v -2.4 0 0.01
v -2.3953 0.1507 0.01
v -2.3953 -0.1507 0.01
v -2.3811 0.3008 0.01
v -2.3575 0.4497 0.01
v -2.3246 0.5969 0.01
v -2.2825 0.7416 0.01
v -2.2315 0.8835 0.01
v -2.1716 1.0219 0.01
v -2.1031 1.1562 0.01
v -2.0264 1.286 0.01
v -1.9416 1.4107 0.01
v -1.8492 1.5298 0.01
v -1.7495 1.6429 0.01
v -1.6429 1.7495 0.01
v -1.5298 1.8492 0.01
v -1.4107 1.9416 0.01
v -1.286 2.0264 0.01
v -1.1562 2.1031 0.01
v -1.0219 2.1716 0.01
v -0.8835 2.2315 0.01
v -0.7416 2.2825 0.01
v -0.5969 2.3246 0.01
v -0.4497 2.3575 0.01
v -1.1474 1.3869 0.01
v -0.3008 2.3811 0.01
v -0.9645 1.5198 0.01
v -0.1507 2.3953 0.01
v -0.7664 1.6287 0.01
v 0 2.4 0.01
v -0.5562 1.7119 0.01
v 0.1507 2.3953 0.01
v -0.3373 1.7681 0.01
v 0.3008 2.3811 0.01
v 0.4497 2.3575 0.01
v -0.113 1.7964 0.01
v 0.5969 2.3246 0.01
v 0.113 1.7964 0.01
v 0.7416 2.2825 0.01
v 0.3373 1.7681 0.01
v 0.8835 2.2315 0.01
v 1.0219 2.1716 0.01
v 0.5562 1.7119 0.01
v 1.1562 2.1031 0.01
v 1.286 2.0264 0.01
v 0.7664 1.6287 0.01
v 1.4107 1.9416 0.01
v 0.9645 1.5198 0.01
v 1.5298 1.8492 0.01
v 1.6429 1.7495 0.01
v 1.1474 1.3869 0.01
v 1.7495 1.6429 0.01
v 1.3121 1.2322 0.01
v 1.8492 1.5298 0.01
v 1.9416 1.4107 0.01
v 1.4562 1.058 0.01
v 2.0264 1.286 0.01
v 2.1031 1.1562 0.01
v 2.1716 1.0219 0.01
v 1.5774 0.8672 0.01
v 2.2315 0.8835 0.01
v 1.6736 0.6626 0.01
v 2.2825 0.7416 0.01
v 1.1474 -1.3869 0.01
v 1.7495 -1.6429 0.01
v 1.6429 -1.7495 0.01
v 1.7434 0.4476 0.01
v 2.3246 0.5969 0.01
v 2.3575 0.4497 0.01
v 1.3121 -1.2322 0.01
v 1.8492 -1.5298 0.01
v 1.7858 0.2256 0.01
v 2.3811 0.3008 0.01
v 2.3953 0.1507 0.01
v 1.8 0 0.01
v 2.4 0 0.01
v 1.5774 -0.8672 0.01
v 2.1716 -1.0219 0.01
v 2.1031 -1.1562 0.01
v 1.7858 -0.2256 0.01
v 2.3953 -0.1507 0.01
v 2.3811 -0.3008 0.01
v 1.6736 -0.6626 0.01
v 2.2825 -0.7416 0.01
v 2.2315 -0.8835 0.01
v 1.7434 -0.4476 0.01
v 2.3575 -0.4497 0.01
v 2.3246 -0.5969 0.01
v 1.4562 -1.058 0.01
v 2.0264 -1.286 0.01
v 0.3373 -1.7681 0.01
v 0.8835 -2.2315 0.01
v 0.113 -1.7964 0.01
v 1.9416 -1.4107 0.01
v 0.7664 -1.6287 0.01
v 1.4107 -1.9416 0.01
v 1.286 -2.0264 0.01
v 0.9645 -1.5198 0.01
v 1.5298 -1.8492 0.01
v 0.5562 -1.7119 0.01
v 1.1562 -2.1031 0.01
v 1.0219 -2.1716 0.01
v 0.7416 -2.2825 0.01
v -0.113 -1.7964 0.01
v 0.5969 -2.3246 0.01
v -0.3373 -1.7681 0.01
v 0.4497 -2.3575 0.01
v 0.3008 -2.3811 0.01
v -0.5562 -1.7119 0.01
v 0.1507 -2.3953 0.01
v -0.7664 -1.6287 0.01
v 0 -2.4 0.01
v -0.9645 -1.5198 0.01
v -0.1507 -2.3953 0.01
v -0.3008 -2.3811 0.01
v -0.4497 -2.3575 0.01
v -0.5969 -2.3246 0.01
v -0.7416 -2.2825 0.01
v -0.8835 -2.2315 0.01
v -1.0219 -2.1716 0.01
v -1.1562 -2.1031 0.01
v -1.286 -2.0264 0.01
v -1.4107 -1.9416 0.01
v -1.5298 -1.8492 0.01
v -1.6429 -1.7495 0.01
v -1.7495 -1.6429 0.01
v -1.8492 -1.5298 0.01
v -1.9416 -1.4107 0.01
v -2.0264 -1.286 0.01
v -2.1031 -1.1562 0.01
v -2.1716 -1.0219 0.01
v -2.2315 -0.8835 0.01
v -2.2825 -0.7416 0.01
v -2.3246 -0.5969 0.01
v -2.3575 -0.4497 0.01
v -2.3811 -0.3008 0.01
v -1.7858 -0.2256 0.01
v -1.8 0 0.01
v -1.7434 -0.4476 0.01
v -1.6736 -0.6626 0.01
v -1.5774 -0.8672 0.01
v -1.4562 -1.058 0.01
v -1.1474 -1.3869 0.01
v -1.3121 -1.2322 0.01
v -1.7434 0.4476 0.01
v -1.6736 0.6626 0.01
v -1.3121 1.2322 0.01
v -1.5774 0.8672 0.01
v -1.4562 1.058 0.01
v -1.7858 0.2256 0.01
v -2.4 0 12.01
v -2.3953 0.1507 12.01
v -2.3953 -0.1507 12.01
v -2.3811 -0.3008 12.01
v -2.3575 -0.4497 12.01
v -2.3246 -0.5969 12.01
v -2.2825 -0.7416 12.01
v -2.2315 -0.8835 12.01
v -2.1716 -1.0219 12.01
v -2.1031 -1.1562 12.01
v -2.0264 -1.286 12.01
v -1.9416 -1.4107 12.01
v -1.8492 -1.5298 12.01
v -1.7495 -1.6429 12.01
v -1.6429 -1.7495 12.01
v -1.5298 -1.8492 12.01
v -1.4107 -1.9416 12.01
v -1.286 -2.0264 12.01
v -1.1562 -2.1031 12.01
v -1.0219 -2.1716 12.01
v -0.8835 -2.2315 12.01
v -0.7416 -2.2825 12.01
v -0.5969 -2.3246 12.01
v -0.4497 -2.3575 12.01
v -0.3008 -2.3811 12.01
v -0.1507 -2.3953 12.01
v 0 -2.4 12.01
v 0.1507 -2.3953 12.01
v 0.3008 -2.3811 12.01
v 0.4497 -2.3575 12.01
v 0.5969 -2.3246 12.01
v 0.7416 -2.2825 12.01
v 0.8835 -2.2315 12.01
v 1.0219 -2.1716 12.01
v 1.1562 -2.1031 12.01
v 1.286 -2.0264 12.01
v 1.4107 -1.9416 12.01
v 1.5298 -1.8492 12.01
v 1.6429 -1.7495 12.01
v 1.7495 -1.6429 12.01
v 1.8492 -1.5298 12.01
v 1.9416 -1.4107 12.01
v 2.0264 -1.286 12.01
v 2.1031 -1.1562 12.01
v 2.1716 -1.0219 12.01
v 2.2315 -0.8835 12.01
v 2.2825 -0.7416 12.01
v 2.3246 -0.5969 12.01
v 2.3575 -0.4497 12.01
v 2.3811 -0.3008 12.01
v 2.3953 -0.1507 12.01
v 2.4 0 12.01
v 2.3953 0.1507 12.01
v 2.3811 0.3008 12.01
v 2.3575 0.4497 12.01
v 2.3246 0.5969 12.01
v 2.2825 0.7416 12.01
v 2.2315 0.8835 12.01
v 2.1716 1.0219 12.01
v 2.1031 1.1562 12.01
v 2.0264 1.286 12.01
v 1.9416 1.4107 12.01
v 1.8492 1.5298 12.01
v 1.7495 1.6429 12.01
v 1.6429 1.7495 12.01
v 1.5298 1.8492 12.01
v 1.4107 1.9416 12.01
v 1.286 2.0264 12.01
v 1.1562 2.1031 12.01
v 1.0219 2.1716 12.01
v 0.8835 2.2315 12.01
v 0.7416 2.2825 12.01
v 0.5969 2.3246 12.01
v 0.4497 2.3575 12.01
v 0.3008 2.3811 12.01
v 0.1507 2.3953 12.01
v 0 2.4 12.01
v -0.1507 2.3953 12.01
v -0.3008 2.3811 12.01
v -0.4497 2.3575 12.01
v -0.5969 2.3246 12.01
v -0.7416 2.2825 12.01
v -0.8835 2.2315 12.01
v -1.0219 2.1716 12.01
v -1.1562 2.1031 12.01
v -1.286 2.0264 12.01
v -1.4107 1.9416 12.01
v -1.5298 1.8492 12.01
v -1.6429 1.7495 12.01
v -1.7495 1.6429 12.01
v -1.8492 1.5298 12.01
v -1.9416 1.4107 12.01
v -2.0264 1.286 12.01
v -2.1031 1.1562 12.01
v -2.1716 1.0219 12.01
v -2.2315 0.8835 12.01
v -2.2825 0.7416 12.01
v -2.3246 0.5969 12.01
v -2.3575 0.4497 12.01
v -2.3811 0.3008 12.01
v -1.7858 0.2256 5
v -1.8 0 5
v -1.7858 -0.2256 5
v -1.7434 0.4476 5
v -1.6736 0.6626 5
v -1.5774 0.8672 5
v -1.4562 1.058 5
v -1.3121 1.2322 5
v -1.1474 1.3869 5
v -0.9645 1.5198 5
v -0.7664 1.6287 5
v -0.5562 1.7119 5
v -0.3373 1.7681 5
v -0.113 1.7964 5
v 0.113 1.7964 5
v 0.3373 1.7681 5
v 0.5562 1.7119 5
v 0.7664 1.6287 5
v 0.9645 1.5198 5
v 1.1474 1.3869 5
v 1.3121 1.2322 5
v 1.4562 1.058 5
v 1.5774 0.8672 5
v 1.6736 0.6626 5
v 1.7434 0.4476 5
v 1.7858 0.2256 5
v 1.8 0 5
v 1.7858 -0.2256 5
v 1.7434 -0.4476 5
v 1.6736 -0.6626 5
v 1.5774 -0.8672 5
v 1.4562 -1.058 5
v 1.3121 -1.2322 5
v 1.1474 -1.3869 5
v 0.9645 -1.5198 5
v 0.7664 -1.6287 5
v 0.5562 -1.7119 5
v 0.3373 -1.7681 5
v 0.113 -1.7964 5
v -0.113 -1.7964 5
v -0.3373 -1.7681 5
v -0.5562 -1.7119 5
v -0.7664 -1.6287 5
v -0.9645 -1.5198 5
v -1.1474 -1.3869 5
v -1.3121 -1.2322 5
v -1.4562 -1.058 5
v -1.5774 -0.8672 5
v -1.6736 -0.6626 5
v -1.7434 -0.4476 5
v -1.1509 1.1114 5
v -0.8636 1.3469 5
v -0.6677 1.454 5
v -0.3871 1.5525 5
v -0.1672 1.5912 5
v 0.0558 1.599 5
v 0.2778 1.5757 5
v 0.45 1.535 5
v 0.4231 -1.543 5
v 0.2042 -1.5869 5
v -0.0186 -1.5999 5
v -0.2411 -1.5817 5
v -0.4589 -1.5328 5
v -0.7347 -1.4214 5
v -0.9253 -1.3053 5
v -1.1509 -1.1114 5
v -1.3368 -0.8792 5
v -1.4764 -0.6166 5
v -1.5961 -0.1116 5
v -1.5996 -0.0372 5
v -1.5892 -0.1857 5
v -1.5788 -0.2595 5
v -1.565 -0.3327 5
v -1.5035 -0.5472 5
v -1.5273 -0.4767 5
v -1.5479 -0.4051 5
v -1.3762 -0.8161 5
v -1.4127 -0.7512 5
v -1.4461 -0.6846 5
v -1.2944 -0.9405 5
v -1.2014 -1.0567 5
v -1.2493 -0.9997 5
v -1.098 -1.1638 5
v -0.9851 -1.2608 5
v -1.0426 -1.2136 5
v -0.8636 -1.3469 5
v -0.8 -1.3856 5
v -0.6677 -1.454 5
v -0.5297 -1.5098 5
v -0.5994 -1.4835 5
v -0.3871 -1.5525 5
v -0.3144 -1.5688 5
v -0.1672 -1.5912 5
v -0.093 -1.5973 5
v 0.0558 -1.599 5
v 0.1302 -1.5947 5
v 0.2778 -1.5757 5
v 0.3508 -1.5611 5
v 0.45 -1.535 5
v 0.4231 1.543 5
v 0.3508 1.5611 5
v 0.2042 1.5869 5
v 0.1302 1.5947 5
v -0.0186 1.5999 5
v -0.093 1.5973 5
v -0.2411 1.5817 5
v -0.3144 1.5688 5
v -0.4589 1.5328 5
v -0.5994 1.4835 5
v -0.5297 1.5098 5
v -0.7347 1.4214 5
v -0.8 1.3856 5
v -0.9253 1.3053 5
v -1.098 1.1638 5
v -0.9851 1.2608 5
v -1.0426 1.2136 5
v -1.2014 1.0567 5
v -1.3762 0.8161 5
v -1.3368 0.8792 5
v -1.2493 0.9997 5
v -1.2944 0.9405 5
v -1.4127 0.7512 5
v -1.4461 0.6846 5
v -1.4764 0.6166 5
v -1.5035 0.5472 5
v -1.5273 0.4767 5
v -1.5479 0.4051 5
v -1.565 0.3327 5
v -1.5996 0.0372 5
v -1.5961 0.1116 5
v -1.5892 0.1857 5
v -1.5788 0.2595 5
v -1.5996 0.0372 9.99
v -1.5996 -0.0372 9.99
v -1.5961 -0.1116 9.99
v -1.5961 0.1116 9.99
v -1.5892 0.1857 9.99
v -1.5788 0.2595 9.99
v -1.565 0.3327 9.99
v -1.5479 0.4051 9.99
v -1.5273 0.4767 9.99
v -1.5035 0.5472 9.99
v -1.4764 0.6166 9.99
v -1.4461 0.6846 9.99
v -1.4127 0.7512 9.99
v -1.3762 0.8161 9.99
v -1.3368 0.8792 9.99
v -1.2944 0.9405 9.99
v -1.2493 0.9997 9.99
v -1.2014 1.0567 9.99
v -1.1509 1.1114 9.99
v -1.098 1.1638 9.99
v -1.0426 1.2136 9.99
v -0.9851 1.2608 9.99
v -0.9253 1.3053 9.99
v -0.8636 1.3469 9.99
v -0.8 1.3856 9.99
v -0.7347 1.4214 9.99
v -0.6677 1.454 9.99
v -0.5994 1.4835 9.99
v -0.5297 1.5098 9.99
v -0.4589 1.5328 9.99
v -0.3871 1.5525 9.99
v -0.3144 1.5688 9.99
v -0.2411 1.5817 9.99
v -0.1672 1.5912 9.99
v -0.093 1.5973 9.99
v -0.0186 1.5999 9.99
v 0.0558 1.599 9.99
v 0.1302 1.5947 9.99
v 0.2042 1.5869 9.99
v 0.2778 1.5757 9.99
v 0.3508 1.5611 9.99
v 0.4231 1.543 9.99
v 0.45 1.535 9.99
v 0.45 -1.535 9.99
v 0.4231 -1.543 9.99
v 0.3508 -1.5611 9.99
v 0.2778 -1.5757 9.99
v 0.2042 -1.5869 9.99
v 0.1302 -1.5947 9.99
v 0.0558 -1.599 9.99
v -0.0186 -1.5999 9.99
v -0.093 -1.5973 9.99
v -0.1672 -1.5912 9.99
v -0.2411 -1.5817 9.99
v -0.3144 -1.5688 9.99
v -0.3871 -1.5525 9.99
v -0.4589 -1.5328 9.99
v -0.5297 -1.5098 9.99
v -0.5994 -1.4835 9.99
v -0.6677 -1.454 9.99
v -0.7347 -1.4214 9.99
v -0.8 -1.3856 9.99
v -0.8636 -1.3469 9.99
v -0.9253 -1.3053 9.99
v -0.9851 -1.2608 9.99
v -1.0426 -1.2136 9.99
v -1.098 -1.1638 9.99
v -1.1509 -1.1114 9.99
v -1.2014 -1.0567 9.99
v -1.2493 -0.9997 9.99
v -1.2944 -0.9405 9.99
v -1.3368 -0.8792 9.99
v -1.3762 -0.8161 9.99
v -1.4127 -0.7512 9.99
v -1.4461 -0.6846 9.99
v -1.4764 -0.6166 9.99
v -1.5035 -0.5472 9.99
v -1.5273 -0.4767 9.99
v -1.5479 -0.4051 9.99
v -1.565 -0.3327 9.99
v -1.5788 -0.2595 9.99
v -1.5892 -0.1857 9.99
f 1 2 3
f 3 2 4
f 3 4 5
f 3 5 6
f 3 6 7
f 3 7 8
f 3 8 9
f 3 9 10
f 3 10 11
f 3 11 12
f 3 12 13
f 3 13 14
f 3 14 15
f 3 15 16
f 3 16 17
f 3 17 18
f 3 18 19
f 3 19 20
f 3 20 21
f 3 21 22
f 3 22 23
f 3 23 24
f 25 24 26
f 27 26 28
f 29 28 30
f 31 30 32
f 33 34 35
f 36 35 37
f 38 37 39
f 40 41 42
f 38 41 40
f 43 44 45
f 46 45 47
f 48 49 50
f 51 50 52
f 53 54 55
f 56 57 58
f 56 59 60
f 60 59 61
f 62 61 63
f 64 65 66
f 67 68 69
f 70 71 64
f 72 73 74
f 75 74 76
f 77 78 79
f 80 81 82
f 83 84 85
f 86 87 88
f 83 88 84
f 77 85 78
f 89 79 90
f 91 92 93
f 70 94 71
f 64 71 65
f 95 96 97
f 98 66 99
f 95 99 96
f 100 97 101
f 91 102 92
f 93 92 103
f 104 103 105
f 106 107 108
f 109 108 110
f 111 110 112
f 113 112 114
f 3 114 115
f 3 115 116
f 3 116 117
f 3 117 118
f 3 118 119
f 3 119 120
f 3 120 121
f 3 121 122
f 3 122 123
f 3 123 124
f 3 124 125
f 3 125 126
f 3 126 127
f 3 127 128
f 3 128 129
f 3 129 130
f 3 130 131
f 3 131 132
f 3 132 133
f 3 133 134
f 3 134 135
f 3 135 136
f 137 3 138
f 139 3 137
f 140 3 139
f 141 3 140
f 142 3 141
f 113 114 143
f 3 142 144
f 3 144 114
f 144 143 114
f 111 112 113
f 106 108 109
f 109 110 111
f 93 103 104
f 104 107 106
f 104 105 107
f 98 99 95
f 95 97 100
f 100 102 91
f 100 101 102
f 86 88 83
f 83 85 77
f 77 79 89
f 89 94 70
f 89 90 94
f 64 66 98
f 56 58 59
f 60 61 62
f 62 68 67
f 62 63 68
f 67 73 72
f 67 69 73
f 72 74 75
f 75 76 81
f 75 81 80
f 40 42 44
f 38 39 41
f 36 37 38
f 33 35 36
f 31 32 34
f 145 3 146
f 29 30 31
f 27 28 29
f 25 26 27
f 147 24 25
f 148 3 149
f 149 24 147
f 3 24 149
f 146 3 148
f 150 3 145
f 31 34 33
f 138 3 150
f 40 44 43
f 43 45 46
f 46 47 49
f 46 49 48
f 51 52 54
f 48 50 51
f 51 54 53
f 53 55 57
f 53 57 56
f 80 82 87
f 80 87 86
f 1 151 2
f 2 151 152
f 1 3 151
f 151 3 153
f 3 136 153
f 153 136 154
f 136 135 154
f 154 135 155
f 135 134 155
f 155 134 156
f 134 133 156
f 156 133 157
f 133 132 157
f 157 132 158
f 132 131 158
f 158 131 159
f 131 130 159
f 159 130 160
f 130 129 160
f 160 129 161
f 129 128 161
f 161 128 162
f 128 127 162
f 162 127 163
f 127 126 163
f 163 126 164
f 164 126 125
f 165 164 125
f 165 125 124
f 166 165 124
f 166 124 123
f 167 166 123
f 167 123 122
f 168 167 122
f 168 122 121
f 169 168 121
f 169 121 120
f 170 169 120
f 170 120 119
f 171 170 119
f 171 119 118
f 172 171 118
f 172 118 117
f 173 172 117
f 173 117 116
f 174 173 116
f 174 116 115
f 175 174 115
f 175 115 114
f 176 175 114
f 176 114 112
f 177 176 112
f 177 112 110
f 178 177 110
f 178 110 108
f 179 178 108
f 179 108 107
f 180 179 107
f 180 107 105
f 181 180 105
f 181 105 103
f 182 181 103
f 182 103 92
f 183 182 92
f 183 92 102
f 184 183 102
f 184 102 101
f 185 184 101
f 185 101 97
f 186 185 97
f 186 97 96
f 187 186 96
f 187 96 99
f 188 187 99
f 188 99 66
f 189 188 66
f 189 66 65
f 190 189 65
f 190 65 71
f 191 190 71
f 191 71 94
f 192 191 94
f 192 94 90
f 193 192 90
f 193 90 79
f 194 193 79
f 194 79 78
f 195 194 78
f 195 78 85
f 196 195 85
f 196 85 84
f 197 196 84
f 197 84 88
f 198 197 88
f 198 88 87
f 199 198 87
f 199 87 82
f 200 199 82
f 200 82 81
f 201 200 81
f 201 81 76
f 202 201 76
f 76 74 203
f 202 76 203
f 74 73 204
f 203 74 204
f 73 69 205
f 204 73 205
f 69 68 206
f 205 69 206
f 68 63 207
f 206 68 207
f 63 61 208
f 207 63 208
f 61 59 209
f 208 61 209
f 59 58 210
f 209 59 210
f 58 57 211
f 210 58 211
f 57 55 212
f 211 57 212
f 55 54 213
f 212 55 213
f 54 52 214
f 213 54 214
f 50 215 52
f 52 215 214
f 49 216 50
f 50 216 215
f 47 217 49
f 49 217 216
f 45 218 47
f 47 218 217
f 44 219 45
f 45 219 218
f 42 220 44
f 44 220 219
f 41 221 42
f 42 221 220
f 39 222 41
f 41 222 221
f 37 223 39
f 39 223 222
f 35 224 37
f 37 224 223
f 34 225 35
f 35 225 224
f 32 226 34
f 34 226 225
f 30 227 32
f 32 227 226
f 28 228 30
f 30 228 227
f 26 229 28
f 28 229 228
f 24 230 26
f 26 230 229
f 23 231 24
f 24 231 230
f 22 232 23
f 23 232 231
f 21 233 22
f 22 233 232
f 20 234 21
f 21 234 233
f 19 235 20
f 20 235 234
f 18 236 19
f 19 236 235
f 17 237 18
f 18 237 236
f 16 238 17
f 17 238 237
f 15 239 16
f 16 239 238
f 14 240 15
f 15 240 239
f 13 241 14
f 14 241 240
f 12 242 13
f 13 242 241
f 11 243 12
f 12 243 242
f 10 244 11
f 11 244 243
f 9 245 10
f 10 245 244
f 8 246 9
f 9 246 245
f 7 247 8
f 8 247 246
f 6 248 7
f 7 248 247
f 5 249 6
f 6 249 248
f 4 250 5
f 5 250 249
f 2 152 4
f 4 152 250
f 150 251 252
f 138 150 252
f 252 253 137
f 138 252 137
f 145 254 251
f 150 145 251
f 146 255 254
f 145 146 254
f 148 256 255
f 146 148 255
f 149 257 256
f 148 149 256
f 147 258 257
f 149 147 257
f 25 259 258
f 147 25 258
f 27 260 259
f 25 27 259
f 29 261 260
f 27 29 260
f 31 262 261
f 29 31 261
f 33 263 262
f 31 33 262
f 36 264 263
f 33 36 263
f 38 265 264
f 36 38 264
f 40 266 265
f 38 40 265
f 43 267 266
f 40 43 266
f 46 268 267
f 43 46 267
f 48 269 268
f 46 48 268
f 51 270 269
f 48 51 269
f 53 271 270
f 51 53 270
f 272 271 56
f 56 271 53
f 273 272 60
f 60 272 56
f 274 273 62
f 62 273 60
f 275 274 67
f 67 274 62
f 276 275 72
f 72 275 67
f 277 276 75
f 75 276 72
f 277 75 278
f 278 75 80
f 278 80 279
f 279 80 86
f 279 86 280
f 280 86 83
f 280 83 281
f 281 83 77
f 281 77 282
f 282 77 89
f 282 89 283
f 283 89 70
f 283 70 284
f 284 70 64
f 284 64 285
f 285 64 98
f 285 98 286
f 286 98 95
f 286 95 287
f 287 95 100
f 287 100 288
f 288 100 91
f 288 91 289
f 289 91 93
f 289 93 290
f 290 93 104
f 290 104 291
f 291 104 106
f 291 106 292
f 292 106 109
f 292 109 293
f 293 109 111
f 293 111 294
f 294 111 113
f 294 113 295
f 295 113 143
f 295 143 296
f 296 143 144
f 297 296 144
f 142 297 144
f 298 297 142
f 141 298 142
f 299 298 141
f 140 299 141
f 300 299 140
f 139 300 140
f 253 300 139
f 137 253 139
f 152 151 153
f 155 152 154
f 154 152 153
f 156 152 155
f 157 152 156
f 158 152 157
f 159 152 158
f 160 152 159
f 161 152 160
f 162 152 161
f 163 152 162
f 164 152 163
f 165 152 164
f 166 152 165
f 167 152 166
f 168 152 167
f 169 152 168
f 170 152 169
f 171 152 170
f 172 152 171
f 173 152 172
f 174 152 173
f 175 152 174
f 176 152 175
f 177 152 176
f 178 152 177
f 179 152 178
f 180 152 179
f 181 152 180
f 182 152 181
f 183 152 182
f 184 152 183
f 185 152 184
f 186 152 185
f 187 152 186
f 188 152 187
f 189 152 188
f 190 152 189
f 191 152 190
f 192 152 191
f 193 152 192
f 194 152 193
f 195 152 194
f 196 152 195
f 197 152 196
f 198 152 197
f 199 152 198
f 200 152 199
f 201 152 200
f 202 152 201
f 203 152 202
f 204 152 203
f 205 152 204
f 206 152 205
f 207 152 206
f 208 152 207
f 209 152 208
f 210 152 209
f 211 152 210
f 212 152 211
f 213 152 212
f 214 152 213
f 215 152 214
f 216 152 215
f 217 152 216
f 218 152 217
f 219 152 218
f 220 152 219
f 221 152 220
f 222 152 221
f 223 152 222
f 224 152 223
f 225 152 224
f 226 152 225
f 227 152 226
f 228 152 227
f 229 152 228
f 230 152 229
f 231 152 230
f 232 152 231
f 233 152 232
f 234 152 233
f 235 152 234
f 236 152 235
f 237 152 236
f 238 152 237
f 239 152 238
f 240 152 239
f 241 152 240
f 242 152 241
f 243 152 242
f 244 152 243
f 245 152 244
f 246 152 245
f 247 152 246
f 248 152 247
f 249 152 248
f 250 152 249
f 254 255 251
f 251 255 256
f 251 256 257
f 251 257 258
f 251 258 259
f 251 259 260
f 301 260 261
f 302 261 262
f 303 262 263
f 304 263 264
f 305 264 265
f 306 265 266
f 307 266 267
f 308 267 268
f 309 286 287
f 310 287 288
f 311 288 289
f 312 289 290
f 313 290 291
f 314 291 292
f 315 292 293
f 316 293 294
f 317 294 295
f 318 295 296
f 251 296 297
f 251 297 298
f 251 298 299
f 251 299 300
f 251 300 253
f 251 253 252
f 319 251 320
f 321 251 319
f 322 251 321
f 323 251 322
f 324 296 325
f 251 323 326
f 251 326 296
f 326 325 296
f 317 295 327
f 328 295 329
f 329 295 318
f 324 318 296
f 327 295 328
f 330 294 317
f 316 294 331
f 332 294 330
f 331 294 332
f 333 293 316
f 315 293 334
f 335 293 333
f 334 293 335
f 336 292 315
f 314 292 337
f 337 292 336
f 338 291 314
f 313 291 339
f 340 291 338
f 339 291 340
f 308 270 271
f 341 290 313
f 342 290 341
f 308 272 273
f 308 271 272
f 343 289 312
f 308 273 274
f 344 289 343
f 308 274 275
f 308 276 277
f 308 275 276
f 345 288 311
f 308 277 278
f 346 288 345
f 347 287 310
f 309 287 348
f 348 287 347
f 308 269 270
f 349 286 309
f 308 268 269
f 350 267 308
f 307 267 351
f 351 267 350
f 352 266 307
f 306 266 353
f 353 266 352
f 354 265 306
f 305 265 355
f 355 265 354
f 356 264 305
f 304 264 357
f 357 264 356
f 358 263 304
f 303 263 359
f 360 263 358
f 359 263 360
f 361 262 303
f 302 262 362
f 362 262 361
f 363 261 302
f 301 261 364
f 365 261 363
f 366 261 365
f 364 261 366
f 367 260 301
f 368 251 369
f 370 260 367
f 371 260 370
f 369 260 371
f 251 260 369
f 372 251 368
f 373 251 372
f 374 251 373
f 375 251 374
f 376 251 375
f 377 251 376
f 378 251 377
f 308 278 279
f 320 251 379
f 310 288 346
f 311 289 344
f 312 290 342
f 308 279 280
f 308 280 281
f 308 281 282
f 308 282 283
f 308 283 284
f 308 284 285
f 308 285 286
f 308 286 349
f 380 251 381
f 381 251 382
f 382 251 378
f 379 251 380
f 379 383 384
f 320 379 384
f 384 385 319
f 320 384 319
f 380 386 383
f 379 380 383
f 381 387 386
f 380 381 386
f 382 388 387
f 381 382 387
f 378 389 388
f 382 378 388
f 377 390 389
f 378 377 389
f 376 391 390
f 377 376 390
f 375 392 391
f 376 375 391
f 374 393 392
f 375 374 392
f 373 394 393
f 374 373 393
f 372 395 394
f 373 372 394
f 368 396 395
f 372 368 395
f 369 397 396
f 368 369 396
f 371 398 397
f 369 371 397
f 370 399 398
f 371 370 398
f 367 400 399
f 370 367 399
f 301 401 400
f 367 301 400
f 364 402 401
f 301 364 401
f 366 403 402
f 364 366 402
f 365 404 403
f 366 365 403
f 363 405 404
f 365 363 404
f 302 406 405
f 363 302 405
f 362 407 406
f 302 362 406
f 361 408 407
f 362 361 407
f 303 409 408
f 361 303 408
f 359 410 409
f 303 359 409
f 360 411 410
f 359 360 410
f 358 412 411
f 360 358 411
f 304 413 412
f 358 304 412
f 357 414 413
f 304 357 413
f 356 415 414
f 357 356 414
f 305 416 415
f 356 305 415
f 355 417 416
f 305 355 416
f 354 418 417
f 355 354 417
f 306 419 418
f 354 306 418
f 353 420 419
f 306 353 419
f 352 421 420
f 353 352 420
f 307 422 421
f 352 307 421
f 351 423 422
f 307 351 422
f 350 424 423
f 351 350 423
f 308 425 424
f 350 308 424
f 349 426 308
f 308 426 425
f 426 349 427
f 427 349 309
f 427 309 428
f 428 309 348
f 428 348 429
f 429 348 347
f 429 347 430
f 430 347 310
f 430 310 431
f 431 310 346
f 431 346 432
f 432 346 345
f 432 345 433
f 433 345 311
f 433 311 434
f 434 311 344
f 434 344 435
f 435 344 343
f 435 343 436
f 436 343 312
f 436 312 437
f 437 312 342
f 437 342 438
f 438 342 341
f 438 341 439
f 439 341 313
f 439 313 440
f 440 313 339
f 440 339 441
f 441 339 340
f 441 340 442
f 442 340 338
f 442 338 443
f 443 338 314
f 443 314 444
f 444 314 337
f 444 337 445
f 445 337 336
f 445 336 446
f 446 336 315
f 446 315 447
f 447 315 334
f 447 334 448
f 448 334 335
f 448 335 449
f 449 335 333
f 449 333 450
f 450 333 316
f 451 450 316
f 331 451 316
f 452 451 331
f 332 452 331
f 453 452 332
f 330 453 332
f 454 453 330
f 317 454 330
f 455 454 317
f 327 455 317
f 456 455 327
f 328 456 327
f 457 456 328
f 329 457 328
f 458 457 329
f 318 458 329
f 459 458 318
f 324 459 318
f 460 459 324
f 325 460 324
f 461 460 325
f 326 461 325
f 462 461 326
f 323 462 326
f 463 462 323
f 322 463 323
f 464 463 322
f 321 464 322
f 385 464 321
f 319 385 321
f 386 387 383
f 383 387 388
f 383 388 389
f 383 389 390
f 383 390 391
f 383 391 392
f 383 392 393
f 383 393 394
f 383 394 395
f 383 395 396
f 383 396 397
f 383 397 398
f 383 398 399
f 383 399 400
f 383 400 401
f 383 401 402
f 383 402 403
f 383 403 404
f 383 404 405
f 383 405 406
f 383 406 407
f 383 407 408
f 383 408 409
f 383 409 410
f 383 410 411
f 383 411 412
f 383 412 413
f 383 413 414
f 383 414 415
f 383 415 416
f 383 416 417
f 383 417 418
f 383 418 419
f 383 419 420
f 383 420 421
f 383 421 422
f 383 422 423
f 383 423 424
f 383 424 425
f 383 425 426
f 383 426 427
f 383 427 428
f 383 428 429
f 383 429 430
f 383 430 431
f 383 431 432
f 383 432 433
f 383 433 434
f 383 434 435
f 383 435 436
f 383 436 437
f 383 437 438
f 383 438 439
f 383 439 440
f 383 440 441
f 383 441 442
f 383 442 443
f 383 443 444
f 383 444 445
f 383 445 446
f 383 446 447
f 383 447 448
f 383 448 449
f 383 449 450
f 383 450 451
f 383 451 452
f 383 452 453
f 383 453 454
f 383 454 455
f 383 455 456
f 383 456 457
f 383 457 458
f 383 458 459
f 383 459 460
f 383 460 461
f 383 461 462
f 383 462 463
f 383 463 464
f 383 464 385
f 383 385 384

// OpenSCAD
difference(){
	translate([0,0,0.01])cylinder(r=2.4,h=12,$fn=100);
	union(){
		cylinder(r=1.8,h=5,$fn=50);
		difference(){
			translate([0,0,4.99]) cylinder(r=1.6,h=5,$fn=135);
			translate([0.45,-4,0]) cube([8,8,10]);
			
		}
	}
}
